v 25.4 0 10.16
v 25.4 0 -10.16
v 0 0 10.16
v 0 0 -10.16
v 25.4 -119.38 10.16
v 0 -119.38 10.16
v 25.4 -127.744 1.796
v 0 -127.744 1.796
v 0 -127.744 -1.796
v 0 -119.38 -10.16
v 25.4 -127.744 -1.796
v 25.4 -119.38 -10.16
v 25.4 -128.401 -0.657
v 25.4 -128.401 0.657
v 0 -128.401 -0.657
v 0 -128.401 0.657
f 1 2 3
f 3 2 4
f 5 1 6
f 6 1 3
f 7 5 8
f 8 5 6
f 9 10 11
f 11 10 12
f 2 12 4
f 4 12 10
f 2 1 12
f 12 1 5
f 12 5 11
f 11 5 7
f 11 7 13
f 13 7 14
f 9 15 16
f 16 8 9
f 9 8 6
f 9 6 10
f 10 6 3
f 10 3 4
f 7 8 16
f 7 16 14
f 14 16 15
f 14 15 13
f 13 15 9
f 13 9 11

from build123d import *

# Parameters (mm, degrees)
BOSS_EXTRUDE1_DEPTH = 25.4
FILLET1_R           = 2.54


with BuildPart() as part:
    # Sketch1 → Boss-Extrude1 (new body)
    with BuildSketch(Plane(origin=(0, 0, 0), x_dir=(0, 0, -1), z_dir=(1, 0, 0))):
        Polygon((-10.16, 0), (-10.16, -119.38), (0, -129.54), (10.16, -119.38), (10.16, 0), align=None)
    extrude(amount=BOSS_EXTRUDE1_DEPTH)

    # Fillet1
    fillet1_edges = [part.edges().sort_by_distance(p)[0] for p in [
        (12.7, -129.54, 0),
    ]]
    fillet(fillet1_edges, radius=FILLET1_R)


solid = part.part
